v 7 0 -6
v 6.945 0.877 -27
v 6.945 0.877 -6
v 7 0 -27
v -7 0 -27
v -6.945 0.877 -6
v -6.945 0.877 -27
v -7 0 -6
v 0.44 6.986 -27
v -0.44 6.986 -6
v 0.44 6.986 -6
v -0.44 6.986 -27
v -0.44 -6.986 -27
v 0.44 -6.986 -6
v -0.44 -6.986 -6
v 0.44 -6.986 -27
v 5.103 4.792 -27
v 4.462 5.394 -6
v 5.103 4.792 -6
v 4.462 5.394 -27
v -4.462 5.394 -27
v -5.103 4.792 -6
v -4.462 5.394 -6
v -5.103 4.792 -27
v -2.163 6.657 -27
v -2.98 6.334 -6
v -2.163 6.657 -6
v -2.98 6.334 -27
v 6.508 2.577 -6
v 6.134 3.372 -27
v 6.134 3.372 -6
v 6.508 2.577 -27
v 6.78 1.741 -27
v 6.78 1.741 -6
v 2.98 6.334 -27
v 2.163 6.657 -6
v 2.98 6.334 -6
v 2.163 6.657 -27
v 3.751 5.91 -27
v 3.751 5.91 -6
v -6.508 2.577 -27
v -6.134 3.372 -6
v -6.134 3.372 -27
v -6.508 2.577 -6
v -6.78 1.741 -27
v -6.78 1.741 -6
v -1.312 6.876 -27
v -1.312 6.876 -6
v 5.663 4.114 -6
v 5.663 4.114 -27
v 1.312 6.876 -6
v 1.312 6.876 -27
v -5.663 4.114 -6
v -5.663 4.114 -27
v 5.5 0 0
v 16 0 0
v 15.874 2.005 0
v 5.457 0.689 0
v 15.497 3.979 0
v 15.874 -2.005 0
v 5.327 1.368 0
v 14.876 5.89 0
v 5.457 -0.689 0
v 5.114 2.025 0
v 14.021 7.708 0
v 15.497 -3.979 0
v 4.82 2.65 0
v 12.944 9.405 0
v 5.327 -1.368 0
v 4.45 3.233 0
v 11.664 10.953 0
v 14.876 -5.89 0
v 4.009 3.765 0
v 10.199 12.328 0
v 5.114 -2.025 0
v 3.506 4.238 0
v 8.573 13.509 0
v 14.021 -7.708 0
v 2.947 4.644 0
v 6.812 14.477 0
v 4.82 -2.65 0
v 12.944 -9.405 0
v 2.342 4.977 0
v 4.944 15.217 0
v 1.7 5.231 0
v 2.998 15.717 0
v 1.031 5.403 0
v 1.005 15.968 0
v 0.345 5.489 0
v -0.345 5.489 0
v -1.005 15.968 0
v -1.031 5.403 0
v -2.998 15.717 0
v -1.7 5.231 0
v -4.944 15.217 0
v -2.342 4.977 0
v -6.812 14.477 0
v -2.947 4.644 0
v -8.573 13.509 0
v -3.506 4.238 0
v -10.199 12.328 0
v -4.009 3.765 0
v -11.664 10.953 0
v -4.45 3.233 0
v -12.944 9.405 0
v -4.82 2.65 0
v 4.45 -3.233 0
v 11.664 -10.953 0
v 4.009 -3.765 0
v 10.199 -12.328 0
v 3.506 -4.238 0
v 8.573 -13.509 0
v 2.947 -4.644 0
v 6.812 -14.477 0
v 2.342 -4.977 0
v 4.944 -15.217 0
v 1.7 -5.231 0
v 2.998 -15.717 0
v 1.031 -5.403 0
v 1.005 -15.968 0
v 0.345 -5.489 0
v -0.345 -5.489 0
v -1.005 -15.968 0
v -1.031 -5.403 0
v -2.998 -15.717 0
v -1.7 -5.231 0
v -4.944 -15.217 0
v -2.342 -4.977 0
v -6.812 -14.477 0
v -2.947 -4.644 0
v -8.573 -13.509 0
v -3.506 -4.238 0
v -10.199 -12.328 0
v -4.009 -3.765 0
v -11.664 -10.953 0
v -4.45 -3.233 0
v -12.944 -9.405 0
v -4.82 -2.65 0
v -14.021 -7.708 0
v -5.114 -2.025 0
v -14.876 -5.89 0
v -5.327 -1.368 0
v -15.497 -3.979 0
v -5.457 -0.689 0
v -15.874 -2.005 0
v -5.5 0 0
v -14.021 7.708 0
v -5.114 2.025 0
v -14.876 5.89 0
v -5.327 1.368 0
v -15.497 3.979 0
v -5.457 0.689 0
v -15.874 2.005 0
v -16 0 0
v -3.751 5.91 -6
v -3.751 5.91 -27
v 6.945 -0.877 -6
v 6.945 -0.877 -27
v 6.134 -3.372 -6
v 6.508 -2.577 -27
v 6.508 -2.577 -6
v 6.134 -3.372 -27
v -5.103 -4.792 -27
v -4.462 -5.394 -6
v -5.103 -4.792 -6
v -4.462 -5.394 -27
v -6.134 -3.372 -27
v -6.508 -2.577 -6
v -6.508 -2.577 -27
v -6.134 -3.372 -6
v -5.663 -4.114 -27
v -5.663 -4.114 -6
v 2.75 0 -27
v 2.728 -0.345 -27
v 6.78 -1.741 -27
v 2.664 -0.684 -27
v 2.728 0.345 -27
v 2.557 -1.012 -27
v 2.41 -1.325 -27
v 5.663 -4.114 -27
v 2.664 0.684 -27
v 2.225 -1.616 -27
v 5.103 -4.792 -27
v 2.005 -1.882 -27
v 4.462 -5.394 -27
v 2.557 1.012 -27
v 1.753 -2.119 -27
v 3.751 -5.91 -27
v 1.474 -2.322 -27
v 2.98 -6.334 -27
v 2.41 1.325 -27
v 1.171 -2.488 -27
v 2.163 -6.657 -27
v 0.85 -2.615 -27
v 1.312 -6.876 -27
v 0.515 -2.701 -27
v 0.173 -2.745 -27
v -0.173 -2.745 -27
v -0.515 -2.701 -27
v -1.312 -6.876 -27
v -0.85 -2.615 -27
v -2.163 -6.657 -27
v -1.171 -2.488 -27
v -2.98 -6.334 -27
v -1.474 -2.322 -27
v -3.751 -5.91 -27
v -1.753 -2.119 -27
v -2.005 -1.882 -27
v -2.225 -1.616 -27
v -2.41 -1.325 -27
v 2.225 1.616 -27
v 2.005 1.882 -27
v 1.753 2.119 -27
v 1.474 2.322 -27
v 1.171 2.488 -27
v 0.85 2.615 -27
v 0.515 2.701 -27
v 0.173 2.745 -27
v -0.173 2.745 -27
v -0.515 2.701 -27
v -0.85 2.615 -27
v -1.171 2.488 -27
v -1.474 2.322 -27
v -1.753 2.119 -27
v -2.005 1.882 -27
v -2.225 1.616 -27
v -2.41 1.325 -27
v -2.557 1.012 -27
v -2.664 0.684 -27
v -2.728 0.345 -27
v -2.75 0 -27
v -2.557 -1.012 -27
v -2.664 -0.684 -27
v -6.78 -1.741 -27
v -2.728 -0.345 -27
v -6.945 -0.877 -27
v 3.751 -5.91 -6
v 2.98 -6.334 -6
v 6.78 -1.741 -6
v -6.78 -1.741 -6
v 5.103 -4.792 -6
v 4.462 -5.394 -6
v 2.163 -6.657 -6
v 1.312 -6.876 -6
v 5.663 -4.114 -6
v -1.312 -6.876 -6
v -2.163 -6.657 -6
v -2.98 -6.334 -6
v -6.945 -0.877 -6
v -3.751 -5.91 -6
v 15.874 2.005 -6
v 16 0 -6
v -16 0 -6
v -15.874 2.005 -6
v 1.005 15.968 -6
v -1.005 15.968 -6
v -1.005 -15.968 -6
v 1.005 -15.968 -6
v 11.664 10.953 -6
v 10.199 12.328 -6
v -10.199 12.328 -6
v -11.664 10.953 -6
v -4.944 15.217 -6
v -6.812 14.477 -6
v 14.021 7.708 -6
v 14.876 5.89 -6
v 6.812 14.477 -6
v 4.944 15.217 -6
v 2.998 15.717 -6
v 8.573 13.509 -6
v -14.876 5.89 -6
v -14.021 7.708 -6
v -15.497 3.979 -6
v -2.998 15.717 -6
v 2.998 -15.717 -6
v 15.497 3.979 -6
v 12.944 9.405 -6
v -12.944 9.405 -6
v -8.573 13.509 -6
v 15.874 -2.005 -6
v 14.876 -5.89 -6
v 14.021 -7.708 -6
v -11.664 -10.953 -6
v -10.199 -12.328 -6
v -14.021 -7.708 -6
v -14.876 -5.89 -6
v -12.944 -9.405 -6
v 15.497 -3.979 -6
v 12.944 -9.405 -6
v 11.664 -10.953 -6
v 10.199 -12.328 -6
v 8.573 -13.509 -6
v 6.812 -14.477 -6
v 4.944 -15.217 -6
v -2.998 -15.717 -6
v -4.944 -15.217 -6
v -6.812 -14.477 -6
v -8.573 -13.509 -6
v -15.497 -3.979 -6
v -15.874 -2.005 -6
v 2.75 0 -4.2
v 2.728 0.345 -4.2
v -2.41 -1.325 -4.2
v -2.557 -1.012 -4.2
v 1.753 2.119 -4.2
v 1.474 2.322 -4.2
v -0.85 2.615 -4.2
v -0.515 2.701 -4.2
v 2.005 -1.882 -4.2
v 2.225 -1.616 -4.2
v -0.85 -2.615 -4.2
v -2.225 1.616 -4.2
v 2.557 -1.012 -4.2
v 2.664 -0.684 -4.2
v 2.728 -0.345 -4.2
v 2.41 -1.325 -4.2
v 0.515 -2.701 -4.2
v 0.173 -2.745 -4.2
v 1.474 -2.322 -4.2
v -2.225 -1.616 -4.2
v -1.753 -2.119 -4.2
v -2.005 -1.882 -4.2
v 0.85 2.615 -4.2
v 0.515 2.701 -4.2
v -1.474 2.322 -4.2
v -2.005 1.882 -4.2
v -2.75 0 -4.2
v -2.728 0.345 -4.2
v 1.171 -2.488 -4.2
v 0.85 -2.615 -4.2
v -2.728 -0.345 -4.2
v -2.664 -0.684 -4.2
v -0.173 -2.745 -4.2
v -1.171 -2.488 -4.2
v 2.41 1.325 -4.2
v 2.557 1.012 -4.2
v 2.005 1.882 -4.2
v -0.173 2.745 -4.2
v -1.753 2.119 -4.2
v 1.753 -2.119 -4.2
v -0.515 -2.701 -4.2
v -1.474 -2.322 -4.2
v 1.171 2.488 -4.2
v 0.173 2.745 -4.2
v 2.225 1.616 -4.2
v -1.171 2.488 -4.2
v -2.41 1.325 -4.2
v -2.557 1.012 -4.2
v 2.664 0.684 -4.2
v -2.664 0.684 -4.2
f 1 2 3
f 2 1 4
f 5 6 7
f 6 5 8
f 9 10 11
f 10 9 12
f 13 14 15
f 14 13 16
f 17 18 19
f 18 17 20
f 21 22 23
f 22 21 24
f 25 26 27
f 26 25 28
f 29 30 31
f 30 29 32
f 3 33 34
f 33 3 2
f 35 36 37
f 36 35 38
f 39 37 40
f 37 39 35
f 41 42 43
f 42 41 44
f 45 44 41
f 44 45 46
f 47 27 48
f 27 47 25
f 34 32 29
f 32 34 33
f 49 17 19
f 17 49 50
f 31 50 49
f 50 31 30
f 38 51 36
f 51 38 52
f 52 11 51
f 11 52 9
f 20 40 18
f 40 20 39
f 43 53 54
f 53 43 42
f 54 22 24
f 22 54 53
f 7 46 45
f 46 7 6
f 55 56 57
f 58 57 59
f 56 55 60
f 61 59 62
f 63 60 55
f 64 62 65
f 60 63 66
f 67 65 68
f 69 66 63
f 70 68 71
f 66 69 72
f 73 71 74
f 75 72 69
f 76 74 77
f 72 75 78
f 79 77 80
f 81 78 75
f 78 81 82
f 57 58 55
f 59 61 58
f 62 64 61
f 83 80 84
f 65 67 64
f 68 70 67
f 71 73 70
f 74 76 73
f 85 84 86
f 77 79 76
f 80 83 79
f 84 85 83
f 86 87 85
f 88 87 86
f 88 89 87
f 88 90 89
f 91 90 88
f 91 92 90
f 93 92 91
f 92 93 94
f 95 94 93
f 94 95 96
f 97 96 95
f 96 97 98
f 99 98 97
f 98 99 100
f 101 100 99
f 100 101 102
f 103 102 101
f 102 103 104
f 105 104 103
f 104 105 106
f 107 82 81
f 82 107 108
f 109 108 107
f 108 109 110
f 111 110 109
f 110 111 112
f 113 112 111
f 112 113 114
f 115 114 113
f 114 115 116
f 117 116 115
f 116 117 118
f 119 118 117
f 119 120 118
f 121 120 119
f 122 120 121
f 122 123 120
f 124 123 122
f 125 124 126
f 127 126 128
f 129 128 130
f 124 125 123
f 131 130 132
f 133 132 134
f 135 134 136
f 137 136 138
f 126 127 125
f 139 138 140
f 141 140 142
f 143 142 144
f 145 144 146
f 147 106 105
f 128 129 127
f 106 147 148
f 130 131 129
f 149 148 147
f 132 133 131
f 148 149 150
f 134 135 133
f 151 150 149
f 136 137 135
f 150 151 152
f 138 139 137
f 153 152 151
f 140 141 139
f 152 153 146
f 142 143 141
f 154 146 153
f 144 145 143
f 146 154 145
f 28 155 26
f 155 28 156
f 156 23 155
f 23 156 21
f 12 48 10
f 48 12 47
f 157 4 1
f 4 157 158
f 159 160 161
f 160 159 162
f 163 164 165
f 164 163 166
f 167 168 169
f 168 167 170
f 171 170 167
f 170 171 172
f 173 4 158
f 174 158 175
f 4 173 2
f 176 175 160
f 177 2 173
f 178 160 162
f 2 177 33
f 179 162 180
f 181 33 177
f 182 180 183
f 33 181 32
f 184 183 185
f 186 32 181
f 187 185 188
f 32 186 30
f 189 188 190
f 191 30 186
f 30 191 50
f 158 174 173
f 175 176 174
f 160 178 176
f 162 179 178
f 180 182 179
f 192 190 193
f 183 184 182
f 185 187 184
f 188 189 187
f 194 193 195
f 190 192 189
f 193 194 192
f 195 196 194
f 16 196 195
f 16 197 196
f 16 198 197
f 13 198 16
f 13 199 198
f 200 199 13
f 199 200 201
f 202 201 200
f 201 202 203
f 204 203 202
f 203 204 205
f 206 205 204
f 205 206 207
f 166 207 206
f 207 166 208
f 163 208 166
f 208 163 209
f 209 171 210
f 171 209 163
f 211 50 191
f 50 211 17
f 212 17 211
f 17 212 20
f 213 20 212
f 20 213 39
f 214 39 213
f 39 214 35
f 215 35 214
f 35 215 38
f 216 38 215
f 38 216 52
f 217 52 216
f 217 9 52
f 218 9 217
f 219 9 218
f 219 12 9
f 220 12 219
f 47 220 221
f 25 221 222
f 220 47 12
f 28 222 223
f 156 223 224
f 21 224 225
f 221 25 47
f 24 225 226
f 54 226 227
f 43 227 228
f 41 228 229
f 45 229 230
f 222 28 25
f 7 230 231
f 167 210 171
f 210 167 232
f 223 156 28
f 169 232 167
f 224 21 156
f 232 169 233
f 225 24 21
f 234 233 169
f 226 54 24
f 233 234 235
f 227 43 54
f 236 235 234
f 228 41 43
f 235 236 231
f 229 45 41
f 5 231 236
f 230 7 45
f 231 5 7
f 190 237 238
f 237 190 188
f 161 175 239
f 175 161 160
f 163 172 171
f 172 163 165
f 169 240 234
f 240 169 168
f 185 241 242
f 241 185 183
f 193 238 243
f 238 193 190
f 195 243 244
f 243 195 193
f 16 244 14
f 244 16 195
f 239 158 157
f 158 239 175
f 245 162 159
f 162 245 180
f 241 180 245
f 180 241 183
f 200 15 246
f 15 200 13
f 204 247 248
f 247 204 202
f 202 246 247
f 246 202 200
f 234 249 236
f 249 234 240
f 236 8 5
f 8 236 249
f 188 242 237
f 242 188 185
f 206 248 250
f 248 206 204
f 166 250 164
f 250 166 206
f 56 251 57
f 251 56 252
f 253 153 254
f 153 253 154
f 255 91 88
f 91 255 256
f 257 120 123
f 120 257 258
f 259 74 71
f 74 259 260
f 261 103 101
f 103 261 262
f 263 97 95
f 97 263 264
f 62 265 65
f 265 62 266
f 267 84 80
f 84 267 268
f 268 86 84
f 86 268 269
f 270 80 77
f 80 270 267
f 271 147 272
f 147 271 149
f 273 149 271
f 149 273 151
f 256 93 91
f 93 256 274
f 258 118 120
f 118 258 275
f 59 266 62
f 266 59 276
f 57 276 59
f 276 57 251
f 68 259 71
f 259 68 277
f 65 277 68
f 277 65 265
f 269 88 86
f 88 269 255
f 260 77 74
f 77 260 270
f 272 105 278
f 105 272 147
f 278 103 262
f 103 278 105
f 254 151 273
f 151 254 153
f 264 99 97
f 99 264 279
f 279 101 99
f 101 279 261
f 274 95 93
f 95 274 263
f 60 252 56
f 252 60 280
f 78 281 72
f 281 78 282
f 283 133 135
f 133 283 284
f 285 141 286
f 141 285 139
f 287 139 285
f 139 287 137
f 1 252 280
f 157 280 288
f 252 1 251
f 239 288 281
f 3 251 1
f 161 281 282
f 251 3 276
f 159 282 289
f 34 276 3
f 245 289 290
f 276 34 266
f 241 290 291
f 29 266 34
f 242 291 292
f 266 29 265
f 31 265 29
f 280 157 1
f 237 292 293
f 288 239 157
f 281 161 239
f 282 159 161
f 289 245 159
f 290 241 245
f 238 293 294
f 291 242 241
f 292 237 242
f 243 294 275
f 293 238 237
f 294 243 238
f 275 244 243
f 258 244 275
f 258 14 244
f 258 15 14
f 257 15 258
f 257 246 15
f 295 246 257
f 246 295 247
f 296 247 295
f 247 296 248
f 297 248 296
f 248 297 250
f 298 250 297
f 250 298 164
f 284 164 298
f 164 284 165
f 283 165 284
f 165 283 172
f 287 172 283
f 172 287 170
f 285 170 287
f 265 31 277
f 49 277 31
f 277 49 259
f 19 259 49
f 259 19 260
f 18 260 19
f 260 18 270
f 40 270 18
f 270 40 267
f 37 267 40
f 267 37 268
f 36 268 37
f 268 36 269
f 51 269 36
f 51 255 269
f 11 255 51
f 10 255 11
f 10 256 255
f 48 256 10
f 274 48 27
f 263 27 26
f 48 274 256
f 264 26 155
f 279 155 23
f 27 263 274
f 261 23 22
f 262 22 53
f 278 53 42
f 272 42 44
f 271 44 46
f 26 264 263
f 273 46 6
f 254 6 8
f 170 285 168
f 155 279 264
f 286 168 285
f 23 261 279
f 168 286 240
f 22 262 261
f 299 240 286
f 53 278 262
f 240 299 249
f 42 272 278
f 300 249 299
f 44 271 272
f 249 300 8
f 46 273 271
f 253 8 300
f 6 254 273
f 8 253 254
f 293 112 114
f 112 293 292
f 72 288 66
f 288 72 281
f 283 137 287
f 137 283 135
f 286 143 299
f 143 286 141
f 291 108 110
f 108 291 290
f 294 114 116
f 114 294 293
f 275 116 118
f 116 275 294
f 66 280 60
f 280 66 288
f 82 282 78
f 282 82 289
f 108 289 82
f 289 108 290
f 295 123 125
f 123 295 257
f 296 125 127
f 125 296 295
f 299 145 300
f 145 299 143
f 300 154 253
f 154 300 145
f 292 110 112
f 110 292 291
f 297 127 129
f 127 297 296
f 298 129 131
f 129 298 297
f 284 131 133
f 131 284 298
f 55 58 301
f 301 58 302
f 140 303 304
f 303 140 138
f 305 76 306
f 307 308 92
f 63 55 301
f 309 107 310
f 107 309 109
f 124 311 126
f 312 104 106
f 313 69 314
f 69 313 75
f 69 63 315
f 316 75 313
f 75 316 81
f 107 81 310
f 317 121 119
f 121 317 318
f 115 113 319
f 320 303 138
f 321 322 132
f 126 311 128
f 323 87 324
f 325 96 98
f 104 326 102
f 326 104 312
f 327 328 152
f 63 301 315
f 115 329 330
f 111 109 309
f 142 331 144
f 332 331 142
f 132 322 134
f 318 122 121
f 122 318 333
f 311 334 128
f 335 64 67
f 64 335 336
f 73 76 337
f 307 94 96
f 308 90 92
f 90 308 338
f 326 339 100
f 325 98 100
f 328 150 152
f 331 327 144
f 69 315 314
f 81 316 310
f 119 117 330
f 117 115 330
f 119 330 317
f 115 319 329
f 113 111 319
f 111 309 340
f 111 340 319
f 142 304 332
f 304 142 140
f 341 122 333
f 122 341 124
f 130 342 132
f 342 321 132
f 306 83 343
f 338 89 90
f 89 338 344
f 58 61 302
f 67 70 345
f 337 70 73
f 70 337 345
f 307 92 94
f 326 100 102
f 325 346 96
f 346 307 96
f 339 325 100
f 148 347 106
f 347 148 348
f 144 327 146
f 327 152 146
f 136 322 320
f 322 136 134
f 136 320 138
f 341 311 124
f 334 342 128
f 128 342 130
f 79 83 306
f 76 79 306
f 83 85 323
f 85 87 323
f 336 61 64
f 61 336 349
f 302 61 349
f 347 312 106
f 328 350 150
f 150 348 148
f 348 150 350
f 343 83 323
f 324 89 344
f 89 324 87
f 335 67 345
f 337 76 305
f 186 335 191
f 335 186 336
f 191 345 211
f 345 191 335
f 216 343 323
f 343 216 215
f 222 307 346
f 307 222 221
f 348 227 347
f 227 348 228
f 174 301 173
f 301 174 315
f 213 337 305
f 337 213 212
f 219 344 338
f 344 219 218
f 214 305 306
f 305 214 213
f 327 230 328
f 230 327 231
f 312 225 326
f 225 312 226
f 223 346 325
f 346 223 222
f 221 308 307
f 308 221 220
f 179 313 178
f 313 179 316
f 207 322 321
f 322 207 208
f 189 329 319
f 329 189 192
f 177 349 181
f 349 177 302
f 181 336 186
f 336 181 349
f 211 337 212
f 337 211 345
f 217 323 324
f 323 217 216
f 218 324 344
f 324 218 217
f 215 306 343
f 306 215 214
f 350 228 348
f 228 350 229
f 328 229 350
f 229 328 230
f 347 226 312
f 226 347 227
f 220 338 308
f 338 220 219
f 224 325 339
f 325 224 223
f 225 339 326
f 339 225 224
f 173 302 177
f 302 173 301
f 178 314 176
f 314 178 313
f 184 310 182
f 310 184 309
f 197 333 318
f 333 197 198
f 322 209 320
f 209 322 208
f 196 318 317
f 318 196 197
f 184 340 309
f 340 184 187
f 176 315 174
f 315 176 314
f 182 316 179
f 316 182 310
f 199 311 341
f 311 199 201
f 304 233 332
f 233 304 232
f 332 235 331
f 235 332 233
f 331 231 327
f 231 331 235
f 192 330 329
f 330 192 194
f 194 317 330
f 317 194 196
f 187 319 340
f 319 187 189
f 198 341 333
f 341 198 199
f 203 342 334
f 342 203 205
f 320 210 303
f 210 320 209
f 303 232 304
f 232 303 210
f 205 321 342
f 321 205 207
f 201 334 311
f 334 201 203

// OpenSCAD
$fn = 50;


difference() {
	union() {
		translate(v = [0, 0, -27.0000000000]) {
			cylinder(h = 27, r = 7.0000000000);
		}
		translate(v = [0, 0, -6.0000000000]) {
			cylinder(h = 6, r = 16.0000000000);
		}
	}
	union() {
		translate(v = [0, 0, 0]) {
			rotate(a = [0, 0, 0]) {
				difference() {
					union() {
						#translate(v = [0, 0, -27.0000000000]) {
							cylinder(h = 27, r = 2.2500000000);
						}
						#translate(v = [0, 0, -4.2000000000]) {
							cylinder(h = 4.2000000000, r1 = 2.7500000000, r2 = 5.5000000000);
						}
						#translate(v = [0, 0, -27.0000000000]) {
							cylinder(h = 27, r = 2.7500000000);
						}
						#translate(v = [0, 0, -27.0000000000]) {
							cylinder(h = 27, r = 2.2500000000);
						}
					}
					union();
				}
			}
		}
	}
}
